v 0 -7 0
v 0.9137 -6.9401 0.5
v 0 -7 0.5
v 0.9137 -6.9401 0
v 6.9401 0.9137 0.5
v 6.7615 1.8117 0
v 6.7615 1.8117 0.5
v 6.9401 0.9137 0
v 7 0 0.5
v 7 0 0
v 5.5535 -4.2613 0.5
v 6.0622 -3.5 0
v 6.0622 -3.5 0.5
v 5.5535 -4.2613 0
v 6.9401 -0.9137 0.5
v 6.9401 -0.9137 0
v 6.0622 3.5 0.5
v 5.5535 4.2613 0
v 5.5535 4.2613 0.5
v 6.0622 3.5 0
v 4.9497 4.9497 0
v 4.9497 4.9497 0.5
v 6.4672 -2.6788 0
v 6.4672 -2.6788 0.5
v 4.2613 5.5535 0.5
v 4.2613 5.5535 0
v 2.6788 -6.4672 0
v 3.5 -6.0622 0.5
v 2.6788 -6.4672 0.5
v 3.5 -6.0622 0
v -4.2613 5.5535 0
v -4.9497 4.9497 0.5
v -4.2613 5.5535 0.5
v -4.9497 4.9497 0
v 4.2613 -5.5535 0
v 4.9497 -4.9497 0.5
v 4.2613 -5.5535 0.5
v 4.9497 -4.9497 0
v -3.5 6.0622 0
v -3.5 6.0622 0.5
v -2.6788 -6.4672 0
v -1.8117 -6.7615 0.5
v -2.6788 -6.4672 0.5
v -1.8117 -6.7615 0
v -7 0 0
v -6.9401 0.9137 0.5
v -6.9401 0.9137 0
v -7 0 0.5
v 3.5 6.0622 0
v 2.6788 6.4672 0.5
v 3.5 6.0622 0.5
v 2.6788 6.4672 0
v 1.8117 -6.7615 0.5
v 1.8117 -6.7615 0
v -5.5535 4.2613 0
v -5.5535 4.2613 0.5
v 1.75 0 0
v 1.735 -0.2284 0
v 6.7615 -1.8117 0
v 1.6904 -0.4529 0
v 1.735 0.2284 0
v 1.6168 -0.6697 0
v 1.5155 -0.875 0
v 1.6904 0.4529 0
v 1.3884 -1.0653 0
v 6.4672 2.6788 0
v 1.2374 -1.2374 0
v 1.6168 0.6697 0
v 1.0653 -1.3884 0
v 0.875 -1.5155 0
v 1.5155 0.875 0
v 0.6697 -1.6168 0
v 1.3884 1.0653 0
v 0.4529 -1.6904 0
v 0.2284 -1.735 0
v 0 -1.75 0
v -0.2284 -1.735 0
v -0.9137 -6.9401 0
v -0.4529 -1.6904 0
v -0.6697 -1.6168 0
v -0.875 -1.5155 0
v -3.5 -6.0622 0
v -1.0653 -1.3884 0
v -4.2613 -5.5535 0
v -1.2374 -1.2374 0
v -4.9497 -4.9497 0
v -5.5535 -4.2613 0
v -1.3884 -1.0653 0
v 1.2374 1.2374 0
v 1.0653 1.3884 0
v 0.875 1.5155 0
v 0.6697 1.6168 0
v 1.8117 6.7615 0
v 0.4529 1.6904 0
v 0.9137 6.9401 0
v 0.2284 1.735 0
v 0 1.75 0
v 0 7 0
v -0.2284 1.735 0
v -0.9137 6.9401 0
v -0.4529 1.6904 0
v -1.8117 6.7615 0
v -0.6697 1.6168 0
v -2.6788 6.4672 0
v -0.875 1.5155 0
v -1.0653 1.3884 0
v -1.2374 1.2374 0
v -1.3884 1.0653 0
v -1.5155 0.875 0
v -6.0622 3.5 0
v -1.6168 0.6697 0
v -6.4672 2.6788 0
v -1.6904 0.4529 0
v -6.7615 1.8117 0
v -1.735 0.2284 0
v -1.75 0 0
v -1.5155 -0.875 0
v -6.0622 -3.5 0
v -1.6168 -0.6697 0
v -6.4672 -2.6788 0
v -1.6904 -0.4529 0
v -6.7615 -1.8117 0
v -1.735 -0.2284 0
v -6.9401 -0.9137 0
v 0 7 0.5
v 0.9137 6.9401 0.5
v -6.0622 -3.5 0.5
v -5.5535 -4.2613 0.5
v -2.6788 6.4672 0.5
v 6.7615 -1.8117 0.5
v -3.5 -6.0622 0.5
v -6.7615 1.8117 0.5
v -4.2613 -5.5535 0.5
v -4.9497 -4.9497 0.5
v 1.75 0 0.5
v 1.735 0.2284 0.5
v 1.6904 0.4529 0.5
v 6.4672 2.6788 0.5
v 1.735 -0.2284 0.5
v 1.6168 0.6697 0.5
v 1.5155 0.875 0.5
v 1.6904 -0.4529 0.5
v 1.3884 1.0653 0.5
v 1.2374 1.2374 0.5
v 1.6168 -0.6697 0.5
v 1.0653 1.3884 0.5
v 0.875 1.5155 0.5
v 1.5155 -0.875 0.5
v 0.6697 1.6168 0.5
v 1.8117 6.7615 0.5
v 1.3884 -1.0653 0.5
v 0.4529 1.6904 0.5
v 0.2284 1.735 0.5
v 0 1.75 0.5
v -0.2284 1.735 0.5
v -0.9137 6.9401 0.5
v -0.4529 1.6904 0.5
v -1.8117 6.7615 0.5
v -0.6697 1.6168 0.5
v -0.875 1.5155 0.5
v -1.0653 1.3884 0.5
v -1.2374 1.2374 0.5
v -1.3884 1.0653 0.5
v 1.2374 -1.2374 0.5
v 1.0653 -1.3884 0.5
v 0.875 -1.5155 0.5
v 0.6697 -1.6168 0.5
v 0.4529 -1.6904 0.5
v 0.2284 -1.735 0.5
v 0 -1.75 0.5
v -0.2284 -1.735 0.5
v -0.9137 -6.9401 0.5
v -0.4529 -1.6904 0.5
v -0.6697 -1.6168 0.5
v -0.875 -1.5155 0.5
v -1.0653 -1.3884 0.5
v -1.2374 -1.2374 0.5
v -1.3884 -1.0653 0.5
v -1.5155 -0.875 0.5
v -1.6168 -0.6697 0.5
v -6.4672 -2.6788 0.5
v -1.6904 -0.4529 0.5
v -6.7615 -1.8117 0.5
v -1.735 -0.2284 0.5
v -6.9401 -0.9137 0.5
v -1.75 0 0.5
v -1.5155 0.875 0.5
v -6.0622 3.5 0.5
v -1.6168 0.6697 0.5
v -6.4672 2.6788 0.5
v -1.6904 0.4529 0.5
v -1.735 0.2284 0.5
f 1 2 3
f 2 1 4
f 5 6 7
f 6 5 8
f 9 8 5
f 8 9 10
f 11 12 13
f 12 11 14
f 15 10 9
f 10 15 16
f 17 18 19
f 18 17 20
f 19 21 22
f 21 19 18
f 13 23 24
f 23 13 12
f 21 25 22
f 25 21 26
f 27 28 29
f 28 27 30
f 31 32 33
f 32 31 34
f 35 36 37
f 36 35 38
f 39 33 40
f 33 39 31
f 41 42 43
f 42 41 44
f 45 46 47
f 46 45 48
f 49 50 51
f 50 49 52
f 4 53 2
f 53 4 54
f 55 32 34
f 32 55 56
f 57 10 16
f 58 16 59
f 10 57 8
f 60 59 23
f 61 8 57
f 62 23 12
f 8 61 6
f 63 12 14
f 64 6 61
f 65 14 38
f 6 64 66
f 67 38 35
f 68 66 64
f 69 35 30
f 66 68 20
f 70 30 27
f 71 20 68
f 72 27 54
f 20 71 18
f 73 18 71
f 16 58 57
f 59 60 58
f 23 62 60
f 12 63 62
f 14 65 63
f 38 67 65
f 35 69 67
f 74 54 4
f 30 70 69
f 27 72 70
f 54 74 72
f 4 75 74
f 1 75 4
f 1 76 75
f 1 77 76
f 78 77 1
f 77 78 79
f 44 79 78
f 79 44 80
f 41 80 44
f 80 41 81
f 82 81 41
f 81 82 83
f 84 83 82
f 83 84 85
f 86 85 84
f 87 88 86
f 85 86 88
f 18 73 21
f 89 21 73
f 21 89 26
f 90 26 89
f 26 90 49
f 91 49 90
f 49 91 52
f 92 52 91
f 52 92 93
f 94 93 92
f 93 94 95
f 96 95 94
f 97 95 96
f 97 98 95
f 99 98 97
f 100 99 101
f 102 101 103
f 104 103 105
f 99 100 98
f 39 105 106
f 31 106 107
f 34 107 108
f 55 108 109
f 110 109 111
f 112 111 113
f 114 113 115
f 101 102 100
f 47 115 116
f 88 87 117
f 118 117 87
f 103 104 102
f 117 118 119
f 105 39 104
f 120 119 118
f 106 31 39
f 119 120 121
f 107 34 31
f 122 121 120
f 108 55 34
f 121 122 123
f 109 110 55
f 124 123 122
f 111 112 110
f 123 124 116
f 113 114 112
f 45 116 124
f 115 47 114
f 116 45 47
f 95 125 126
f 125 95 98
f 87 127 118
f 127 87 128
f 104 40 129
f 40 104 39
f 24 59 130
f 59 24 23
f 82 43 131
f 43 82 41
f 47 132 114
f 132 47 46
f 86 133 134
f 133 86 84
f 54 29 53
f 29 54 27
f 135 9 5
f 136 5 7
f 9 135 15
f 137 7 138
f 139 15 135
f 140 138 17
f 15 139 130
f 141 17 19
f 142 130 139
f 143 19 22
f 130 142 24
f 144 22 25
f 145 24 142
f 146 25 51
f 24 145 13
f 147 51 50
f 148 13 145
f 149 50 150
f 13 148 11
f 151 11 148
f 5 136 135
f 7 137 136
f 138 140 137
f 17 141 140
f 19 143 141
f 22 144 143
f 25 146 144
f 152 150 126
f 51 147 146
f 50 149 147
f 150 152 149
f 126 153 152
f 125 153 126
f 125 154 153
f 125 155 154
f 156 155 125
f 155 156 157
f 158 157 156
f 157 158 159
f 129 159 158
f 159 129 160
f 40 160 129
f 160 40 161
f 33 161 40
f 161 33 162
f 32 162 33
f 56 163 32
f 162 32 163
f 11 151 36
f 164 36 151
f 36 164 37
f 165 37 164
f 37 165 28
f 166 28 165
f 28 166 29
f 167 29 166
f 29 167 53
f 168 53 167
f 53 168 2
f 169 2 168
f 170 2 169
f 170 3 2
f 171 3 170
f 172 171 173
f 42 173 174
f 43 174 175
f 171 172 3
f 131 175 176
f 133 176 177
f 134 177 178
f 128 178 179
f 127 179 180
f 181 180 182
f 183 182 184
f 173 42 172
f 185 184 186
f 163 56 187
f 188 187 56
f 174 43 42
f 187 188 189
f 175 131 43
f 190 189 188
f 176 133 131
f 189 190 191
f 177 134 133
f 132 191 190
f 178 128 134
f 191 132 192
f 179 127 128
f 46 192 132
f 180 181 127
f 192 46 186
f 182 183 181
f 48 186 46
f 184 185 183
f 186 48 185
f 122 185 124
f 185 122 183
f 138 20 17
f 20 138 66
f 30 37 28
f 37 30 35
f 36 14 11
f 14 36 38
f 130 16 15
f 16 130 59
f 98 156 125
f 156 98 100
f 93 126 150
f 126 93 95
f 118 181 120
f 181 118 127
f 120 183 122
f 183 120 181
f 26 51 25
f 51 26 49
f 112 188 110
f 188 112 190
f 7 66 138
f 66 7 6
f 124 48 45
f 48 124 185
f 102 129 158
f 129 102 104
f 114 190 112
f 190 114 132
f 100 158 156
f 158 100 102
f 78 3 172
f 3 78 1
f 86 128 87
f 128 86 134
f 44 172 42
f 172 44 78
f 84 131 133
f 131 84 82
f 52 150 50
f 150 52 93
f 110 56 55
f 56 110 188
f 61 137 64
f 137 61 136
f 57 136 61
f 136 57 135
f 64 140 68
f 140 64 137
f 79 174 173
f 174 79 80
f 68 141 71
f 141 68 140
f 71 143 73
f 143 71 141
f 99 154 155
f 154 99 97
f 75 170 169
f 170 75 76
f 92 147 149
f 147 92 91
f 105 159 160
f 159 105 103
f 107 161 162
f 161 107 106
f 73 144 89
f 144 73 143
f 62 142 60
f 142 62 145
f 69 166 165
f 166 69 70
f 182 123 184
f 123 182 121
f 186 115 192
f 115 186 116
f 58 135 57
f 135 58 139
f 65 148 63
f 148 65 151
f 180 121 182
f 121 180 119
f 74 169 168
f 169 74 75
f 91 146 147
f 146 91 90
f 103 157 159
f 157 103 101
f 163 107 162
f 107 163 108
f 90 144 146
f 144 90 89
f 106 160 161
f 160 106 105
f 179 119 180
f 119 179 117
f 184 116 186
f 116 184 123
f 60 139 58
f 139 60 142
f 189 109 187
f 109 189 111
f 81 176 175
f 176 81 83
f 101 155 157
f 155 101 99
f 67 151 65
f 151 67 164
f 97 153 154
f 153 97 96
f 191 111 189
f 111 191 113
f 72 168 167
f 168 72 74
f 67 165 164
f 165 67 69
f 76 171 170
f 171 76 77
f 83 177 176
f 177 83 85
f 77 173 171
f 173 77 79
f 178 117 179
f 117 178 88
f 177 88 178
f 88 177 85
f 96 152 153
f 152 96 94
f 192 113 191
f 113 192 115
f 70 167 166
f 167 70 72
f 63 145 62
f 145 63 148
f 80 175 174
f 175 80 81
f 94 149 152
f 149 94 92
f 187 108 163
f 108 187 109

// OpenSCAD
// file: parameters.scad
// =============================================================================
// Gen-BV — nightly 2026-10-10 (physics_scorer, honest magpylib watts)
// Fewer, wider-spaced poles: 6 Ø20 per rotor (12 of the 16) on an R57 ring over nine 35.2° bobbins (r 39–74 mm, 15.7 mm build). Wider pole pitch means less pole-to-pole leakage and bigger coils, but the electrical frequency drops 25 % and 4 Ø20 sit idle; diametric Ø5 assists lowered the score here, so none are fitted. The scorer puts it at about 62 % of Gen-BR.
// Clocking 0 deg (magnets N facing S) + D-flat keyed bore + index notch + flip-symmetric hole map.
// Windable 2-piece bobbin; turns = physics_scorer turns_fit; copper only between flanges.
// Steel back-iron: 2× Ø142 × 4.76 mm (3/16") mild-steel discs (steel_backiron_disc.dxf); magnets sit ON the steel
// (through-pockets) -> score with --back-iron. Night 2026-10-10.
// =============================================================================
topology            = "dual_rotor";

// --- Wire / winding (physics_scorer winding-fit) -------------------------------
wire_awg            = 26;
wire_od             = 0.45;     // insulated OD mm (bare 0.405)
fill_realistic      = 0.65;     // insulated-wire area / window (DENSE layered wind with a jig; scorer cap 0.65)
turns               = 518;       // = physics_scorer turns_fit (do NOT raise)
coil_former_type    = "bobbin";
coil_core_inset     = 15.66;     // radial copper build: hub = copper boundary inset by this
wind_build_axial    = 0.0;      // nothing proud of the flanges
wind_build_radial   = 0.0;

// --- Bobbin (base + lid) ---------------------------------------------------------
coil_id_r           = 39.00;    // copper boundary sector
coil_od_r           = 74.00;
span_deg            = 35.15;    // = pitch - 2*asin((wall+0.85)/coil_id_r) -> >=1.2 mm stator web
former_web          = 8.10;     // copper height between flanges (TALL copper: steel keeps Bz up)
flange_t            = 0.80;     // >= 0.8 mm FDM wall rule (tall winds push on the flanges)
wall                = 0.80;     // flange lip beyond copper
former_bare_h       = former_web + 2 * flange_t;
coil_envelope_h     = former_bare_h + 2 * wind_build_axial;
tab_w               = 7.0;
tab_len             = 7.0;
tab_h               = former_bare_h / 2;
pin_d               = 1.9;      // 1.75 mm filament locating pin
coil_mount_r        = coil_od_r + 0.2 + 4.0;
lead_y              = 1.6;
lead_slot_w         = 0.9;
lead_groove_d       = 0.6;

// --- Gap -------------------------------------------------------------------------
run_clear           = 0.50;     // rotor face -> flange
gap_spacer_h        = run_clear + wind_build_axial;
m2m                 = coil_envelope_h + 2 * run_clear;   // rotor face to rotor face (= gap_sleeve length)

// --- Stator ----------------------------------------------------------------------
coil_stations       = 9;
bay_clear           = 0.25;
stator_thick        = former_bare_h;                        // bobbins flush both faces
stator_od           = 166;
shaft_clear_stator  = 14.0;     // stator is static; gap sleeve OD 12 spins inside

// --- Rotor(s) --------------------------------------------------------------------
magnet_Br           = 1.43;     // N52
magnet_d_large      = 20.0;
magnet_h_large      = 5.0;      // one O20x5 per pocket
magnet_h_small      = 5.0;      // unused: no O5 pockets in this kit
halbach_magnetisation = "none";  // NO O5 assist magnets in this kit (scan: they lower the 4-pole score)
rotor_b_same_axis   = true;     // same-index magnets share one axis: N faces S across the gap
large_pocket_d      = 20.3;
small_pocket_d      = 5.3;
pocket_h            = 5.00;     // THROUGH the carrier: magnet back face sits on the steel disc (FLUSH seat: carrier = magnet height, magnet face level with the rotor face)
large_n             = 6;
R_large             = 57.0;
small_r_list        = [];       // no O5 pockets
carrier_od          = 142.0;
carrier_thick       = pocket_h;
hub_h               = 12.0;     // > steel_t + insert: radial set-screw clears the steel
hub_od              = 24.0;     // slim hub so the M4 brace rods fit at R~18 inside the coil ring
hub_insert_d        = 4.0;      // M3 heat-set insert, radial, bears on the D-flat
rotor_b_offset_deg  = 0.0;      // CLOCKING: magnets directly opposite
shaft_key           = "dflat";
dflat_depth         = 0.5;      // 8 mm shaft with 0.5 mm flat (7.5 across flat)
index_notch_d       = 3.0;

// --- Steel back-iron (buyable laser-cut) -------------------------------------------
steel_t             = 4.76;      // mild steel thickness (image method ignores it; sized from steel_flux.py so the return path stays well below saturation)
steel_center_hole   = 26.0;     // slips over the rotor hub (OD 24)
steel_od            = carrier_od;   // steel disc OD = rotor carrier OD

// --- Modular MAX interface ----------------------------------------------------------
shaft_bore          = 8.35;
dflat_x             = 4.0 - dflat_depth + (shaft_bore - 8.0) / 2;
bearing_d           = 21.85;
bearing_h           = 7.2;
m3_clear            = 3.5;
bolt_r_inner        = 30.0;     // M3 steel-disc clamp bolts (inside the magnet ring)
bolt_n_inner        = 4;
bolt_inner_angles   = [0, 90, 180, 270];
bolt_r_outer        = 66.0;     // second M3 steel-disc clamp ring
bolt_outer_angles   = [15, 165, 195, 345];
flange_bolt_r       = 77.0;     // frame rods: OUTSIDE the rotor OD (rotors spin inside them)
flange_bolt_n       = 9;
flange_bolt_offset  = 20.00;    // between coil stations -> never cuts a lead groove/tab
brace_r             = 18.0;
brace_d             = 4.3;      // temporary M4 jack rods (assembly only)
brace_n             = 4;
brace_angles        = [45, 135, 225, 315];          // flip-symmetric

spacer_pad_od       = 14.0;
spacer_pad_id       = m3_clear;
endbell_od          = 164.0;
endbell_thick       = 8.0;
endbell_shaft_clear = 10.0;
collar_h            = 10.0;
standoff_od         = 9.0;
frame_standoff_h    = run_clear + carrier_thick + hub_h + collar_h + 2.0;
sleeve_od           = 12.0;
plate_max_mm        = 410;

$fn = 64;
// main file
// Gen-BV — assembly gap shim, h = run_clear (rotor face -> flange); copper is inside the flanges
include <parameters.scad>;
$fn = 48;
difference() {
    cylinder(d=spacer_pad_od, h=gap_spacer_h);
    translate([0, 0, -0.1]) cylinder(d=spacer_pad_id, h=gap_spacer_h + 0.2);
}
